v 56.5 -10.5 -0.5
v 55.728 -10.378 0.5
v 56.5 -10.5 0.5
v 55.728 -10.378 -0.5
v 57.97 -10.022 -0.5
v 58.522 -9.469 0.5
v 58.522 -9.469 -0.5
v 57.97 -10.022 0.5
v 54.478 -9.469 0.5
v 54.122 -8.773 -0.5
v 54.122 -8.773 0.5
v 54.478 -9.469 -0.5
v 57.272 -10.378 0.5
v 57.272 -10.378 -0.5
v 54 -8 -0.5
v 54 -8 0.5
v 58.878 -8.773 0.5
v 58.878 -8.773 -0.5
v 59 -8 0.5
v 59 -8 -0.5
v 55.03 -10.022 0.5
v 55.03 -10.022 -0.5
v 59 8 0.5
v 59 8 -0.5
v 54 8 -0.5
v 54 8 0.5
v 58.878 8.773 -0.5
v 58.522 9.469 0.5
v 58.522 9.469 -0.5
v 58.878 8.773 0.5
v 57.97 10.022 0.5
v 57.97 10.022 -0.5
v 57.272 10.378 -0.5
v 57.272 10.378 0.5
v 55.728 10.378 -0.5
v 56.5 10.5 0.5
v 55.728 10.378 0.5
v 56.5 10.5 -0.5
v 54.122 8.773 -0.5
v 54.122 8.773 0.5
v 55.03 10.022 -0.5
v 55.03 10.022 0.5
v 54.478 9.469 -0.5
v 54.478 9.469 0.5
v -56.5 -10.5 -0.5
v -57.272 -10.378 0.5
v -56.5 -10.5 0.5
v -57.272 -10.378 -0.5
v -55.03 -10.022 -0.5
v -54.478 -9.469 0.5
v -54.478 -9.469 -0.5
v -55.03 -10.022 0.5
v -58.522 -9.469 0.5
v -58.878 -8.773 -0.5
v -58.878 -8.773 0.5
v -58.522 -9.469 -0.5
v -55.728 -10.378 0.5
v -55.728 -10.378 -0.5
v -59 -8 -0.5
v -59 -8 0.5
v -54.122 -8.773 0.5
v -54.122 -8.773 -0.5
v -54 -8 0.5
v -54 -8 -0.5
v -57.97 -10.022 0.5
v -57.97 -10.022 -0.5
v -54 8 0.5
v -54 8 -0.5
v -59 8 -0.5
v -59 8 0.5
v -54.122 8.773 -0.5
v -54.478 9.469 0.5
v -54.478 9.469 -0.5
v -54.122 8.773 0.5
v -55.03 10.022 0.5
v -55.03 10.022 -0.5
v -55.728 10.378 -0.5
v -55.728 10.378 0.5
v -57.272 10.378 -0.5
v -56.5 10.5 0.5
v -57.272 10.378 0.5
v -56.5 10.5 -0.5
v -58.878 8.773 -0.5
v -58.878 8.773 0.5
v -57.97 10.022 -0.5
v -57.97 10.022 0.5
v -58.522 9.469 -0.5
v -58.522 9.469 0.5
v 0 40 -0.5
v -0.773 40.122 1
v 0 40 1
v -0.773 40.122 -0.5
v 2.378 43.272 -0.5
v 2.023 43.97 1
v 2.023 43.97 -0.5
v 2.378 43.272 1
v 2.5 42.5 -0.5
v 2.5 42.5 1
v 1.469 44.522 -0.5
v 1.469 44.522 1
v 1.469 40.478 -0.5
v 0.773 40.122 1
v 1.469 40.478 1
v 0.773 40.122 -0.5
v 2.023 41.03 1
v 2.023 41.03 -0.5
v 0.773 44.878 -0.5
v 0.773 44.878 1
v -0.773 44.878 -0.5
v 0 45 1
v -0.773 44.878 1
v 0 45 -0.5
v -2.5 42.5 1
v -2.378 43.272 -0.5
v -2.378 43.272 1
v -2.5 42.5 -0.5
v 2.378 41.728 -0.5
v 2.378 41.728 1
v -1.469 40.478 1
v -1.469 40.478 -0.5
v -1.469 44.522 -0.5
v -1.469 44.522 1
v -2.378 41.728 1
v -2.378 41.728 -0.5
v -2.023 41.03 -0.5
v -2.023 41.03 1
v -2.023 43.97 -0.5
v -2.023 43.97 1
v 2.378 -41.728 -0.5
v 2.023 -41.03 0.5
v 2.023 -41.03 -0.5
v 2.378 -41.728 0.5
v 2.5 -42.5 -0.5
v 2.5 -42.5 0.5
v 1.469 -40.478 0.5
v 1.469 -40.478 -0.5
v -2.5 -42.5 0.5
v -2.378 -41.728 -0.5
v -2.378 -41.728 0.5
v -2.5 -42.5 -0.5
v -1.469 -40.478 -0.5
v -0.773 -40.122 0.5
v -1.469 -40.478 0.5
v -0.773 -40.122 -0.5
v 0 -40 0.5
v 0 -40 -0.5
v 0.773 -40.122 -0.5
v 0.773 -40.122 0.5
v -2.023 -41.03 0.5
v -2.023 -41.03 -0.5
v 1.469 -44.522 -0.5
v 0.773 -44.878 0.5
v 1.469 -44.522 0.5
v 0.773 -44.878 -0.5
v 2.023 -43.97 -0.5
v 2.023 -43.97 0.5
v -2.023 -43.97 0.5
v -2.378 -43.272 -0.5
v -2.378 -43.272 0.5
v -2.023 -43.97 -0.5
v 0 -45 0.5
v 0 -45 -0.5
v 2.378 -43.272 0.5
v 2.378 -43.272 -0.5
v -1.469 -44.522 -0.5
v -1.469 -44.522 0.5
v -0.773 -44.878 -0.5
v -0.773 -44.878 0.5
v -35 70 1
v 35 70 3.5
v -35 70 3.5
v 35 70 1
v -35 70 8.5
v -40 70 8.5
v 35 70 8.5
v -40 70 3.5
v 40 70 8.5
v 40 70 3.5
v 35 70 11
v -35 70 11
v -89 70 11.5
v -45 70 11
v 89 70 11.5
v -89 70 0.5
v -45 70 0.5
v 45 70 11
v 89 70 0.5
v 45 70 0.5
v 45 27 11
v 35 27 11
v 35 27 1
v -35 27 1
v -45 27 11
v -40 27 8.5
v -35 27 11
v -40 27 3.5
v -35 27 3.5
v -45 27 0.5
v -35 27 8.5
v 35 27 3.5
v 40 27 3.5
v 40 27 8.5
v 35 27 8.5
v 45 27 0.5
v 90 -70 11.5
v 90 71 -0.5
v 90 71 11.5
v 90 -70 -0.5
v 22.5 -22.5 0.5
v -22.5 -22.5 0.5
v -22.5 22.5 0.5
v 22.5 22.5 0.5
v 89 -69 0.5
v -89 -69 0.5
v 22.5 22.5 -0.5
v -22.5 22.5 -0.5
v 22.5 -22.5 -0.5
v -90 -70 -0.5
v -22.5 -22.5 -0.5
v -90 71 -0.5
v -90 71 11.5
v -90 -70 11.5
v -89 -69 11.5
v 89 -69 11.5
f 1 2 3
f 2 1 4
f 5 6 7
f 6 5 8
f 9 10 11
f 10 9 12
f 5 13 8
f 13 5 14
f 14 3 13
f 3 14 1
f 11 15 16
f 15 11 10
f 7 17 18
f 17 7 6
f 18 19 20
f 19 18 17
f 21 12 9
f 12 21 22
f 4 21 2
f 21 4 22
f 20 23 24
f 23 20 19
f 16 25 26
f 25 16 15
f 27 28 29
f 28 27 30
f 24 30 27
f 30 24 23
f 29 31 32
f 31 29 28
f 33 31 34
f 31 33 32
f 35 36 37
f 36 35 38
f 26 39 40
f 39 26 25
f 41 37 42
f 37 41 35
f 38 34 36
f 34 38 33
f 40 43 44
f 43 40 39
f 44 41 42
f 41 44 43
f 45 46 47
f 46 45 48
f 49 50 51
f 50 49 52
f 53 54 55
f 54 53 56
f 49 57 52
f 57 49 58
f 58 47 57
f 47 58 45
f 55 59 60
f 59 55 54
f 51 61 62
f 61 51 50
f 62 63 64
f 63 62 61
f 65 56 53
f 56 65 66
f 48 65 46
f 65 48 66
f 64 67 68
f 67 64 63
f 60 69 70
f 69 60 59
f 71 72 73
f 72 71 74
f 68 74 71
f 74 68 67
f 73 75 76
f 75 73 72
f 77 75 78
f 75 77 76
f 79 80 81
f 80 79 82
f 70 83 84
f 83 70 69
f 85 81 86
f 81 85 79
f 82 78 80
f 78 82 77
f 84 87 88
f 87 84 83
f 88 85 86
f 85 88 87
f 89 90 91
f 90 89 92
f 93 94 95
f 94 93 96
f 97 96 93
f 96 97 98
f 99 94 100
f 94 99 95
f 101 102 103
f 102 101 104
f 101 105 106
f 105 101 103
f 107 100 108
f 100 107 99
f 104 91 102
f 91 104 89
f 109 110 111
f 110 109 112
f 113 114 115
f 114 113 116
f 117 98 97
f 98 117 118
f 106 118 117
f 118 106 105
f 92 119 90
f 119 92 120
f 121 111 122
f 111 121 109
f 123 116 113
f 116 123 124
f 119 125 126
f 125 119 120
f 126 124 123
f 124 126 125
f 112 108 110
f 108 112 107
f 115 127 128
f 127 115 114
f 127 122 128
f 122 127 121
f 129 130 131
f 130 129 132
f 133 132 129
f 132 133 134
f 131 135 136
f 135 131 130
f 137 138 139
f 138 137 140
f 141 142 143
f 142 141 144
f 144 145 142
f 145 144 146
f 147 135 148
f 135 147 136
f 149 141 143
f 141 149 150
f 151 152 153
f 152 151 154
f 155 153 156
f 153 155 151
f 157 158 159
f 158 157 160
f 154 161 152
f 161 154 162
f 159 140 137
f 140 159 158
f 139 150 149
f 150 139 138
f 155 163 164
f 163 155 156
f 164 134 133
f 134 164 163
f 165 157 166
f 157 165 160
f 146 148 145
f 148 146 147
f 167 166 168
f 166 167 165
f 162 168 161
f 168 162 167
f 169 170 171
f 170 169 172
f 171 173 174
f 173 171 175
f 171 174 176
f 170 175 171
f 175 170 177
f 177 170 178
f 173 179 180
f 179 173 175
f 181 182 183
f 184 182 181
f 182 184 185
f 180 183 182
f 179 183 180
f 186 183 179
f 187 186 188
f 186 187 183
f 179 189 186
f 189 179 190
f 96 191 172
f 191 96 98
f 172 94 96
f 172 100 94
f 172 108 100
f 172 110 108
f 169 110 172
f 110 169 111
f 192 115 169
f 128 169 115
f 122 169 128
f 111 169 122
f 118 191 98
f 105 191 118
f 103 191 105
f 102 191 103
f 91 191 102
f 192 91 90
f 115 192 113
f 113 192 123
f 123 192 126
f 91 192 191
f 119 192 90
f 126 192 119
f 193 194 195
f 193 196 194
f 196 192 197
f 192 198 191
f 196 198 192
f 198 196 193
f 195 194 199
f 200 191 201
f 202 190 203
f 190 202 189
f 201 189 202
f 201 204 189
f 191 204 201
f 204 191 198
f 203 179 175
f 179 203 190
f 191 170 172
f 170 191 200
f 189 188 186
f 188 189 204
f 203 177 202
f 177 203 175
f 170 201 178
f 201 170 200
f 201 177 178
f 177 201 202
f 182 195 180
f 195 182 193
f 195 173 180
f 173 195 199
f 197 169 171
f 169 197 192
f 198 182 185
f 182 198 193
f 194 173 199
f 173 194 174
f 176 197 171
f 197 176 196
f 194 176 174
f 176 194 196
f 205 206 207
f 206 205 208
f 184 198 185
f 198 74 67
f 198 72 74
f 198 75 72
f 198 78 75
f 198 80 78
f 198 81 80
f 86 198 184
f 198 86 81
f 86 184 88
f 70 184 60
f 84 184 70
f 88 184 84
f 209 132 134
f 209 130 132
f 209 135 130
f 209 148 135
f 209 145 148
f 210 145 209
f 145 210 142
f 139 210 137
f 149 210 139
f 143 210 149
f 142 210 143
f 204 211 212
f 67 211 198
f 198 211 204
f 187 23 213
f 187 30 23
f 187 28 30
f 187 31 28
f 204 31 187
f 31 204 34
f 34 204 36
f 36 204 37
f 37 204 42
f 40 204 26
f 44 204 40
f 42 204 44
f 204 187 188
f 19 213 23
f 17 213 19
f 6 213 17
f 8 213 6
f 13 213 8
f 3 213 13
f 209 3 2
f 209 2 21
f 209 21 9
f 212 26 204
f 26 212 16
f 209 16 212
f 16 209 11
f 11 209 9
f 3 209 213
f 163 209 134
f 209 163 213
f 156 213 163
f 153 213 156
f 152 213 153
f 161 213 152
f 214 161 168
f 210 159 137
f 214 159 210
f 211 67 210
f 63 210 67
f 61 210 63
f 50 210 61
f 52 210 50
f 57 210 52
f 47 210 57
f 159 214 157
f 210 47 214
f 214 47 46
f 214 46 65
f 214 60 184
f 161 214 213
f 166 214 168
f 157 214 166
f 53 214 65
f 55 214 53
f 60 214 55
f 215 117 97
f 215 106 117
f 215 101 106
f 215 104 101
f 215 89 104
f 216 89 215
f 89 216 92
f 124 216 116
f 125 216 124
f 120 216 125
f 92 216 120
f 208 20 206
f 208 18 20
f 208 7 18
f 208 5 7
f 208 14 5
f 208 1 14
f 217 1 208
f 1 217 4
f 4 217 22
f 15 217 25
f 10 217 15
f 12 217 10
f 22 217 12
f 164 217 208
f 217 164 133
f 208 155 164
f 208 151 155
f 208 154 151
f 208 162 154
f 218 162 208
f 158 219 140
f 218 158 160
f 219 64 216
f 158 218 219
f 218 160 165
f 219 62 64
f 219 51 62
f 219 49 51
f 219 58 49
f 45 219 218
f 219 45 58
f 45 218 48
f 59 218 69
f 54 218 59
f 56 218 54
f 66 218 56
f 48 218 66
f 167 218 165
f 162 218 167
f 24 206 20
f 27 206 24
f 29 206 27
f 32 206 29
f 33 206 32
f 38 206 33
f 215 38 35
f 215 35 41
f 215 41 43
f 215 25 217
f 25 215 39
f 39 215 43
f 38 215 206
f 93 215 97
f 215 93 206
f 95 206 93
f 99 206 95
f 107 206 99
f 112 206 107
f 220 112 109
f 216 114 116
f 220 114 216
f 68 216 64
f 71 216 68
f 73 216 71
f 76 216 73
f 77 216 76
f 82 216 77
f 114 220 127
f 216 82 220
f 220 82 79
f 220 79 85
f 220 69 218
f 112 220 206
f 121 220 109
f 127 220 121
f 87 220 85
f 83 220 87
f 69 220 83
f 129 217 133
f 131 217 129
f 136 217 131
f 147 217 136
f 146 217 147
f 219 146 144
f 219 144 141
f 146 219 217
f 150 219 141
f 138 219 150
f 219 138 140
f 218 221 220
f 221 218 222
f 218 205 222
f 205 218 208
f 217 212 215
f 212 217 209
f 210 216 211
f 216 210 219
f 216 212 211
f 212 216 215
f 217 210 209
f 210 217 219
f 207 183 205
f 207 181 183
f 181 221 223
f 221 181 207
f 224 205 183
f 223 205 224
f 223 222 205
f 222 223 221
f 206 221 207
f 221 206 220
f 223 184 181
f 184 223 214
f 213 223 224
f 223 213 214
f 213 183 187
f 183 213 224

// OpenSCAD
// file: PiHolderRail.scad
// Length of the rail
length = 80; //[50 : 150]

// Height/Width of the rail
height = 10; //[4 : 20]

// Height/Depth of the gap in the rail
gap = 4; //[2: 20]

PiHolderRail(length, height, gap);

module PiHolderRail(length, height, gap) {
    difference() {
        color("yellow") cube([length, height, height]);
        translate([0, height - gap, (height - gap)/2]) {
            cube([length, height, gap]);
        } 
    }
    
}
// file: PiHolderSlot.scad
use <./PiHolderRail.scad>


PiHolderSlot(80, 80);

module PiHolderSlot(width, length) {
    cube([length, width + 10, 1]);
    translate([0, 0, 1]) {
        PiHolderRail(length, 10, 5);
        translate([0, width + 10, 0]){
            mirror([0,1,0]) PiHolderRail(length, 10, 5);
        }
    }
    
}
// file: HoleCross.scad
//HoleCross(85, 113, 4);
HLongHoleCross(85, 113, 18, 4);


module HoleCross(vertical, horizontal, diameter=3, height=10) {
    translate([horizontal / 2, 0, 0]) Hole(diameter, height);
    translate([0, vertical / 2, 0]) Hole(diameter, height);
    translate([- horizontal / 2, 0,  0]) Hole(diameter, height);
    translate([0, - vertical / 2,  0]) Hole(diameter, height);
}

module HLongHoleCross(vertical, horizontal, length, diameter=3, height=10) {
    translate([horizontal / 2, 0, 0]) LongHole(diameter, height, length);
    translate([0, vertical / 2, 0]) Hole(diameter, height);
    translate([- horizontal / 2, 0,  0]) LongHole(diameter, height, length);
    translate([0, - vertical / 2,  0]) Hole(diameter, height);
}

module Hole(diameter, height) {
    cylinder(h=2*height, d=diameter, center=true, $fn = 20);
}

module LongHole(diameter, height, length) {
    translate([0, -length / 2, 0]) {
        Hole(diameter, height);
        translate([-diameter / 2, 0, -height]) cube([diameter, length, 2 * height]);
        translate([0, length, 0]) Hole(diameter, height);
    }
}
// main file
use <./HoleCross.scad>
use <./PiHolderSlot.scad>

BackPanel(140, 180, 12, 1);

module BackPanel(width, length, height, wall) {
    slot_height = 43;
    translate([-length/2, width/2, -0.5]){
        cube([length, wall, height]);
    }
    translate([-length/2, -width/2, -0.5]){
        cube([wall, width, height]);
    }
    translate([-length/2, -width/2, -0.5]){
        cube([length, wall, height]);
    }
    translate([length/2 - wall, -width/2, -0.5]){
        cube([wall, width, height]);
    }
    difference() {
        difference() {
            union() {
                cube([length, width, wall], center=true);
                translate([45 , (width / 2) - slot_height , 0]) {
                    rotate([0, 0, 90]) PiHolderSlot(80, slot_height);
                }
            }
            HLongHoleCross(85, 113, 16, 5);
        }
        cube([45, 45, 10], center=true);
    }
    
    
}
